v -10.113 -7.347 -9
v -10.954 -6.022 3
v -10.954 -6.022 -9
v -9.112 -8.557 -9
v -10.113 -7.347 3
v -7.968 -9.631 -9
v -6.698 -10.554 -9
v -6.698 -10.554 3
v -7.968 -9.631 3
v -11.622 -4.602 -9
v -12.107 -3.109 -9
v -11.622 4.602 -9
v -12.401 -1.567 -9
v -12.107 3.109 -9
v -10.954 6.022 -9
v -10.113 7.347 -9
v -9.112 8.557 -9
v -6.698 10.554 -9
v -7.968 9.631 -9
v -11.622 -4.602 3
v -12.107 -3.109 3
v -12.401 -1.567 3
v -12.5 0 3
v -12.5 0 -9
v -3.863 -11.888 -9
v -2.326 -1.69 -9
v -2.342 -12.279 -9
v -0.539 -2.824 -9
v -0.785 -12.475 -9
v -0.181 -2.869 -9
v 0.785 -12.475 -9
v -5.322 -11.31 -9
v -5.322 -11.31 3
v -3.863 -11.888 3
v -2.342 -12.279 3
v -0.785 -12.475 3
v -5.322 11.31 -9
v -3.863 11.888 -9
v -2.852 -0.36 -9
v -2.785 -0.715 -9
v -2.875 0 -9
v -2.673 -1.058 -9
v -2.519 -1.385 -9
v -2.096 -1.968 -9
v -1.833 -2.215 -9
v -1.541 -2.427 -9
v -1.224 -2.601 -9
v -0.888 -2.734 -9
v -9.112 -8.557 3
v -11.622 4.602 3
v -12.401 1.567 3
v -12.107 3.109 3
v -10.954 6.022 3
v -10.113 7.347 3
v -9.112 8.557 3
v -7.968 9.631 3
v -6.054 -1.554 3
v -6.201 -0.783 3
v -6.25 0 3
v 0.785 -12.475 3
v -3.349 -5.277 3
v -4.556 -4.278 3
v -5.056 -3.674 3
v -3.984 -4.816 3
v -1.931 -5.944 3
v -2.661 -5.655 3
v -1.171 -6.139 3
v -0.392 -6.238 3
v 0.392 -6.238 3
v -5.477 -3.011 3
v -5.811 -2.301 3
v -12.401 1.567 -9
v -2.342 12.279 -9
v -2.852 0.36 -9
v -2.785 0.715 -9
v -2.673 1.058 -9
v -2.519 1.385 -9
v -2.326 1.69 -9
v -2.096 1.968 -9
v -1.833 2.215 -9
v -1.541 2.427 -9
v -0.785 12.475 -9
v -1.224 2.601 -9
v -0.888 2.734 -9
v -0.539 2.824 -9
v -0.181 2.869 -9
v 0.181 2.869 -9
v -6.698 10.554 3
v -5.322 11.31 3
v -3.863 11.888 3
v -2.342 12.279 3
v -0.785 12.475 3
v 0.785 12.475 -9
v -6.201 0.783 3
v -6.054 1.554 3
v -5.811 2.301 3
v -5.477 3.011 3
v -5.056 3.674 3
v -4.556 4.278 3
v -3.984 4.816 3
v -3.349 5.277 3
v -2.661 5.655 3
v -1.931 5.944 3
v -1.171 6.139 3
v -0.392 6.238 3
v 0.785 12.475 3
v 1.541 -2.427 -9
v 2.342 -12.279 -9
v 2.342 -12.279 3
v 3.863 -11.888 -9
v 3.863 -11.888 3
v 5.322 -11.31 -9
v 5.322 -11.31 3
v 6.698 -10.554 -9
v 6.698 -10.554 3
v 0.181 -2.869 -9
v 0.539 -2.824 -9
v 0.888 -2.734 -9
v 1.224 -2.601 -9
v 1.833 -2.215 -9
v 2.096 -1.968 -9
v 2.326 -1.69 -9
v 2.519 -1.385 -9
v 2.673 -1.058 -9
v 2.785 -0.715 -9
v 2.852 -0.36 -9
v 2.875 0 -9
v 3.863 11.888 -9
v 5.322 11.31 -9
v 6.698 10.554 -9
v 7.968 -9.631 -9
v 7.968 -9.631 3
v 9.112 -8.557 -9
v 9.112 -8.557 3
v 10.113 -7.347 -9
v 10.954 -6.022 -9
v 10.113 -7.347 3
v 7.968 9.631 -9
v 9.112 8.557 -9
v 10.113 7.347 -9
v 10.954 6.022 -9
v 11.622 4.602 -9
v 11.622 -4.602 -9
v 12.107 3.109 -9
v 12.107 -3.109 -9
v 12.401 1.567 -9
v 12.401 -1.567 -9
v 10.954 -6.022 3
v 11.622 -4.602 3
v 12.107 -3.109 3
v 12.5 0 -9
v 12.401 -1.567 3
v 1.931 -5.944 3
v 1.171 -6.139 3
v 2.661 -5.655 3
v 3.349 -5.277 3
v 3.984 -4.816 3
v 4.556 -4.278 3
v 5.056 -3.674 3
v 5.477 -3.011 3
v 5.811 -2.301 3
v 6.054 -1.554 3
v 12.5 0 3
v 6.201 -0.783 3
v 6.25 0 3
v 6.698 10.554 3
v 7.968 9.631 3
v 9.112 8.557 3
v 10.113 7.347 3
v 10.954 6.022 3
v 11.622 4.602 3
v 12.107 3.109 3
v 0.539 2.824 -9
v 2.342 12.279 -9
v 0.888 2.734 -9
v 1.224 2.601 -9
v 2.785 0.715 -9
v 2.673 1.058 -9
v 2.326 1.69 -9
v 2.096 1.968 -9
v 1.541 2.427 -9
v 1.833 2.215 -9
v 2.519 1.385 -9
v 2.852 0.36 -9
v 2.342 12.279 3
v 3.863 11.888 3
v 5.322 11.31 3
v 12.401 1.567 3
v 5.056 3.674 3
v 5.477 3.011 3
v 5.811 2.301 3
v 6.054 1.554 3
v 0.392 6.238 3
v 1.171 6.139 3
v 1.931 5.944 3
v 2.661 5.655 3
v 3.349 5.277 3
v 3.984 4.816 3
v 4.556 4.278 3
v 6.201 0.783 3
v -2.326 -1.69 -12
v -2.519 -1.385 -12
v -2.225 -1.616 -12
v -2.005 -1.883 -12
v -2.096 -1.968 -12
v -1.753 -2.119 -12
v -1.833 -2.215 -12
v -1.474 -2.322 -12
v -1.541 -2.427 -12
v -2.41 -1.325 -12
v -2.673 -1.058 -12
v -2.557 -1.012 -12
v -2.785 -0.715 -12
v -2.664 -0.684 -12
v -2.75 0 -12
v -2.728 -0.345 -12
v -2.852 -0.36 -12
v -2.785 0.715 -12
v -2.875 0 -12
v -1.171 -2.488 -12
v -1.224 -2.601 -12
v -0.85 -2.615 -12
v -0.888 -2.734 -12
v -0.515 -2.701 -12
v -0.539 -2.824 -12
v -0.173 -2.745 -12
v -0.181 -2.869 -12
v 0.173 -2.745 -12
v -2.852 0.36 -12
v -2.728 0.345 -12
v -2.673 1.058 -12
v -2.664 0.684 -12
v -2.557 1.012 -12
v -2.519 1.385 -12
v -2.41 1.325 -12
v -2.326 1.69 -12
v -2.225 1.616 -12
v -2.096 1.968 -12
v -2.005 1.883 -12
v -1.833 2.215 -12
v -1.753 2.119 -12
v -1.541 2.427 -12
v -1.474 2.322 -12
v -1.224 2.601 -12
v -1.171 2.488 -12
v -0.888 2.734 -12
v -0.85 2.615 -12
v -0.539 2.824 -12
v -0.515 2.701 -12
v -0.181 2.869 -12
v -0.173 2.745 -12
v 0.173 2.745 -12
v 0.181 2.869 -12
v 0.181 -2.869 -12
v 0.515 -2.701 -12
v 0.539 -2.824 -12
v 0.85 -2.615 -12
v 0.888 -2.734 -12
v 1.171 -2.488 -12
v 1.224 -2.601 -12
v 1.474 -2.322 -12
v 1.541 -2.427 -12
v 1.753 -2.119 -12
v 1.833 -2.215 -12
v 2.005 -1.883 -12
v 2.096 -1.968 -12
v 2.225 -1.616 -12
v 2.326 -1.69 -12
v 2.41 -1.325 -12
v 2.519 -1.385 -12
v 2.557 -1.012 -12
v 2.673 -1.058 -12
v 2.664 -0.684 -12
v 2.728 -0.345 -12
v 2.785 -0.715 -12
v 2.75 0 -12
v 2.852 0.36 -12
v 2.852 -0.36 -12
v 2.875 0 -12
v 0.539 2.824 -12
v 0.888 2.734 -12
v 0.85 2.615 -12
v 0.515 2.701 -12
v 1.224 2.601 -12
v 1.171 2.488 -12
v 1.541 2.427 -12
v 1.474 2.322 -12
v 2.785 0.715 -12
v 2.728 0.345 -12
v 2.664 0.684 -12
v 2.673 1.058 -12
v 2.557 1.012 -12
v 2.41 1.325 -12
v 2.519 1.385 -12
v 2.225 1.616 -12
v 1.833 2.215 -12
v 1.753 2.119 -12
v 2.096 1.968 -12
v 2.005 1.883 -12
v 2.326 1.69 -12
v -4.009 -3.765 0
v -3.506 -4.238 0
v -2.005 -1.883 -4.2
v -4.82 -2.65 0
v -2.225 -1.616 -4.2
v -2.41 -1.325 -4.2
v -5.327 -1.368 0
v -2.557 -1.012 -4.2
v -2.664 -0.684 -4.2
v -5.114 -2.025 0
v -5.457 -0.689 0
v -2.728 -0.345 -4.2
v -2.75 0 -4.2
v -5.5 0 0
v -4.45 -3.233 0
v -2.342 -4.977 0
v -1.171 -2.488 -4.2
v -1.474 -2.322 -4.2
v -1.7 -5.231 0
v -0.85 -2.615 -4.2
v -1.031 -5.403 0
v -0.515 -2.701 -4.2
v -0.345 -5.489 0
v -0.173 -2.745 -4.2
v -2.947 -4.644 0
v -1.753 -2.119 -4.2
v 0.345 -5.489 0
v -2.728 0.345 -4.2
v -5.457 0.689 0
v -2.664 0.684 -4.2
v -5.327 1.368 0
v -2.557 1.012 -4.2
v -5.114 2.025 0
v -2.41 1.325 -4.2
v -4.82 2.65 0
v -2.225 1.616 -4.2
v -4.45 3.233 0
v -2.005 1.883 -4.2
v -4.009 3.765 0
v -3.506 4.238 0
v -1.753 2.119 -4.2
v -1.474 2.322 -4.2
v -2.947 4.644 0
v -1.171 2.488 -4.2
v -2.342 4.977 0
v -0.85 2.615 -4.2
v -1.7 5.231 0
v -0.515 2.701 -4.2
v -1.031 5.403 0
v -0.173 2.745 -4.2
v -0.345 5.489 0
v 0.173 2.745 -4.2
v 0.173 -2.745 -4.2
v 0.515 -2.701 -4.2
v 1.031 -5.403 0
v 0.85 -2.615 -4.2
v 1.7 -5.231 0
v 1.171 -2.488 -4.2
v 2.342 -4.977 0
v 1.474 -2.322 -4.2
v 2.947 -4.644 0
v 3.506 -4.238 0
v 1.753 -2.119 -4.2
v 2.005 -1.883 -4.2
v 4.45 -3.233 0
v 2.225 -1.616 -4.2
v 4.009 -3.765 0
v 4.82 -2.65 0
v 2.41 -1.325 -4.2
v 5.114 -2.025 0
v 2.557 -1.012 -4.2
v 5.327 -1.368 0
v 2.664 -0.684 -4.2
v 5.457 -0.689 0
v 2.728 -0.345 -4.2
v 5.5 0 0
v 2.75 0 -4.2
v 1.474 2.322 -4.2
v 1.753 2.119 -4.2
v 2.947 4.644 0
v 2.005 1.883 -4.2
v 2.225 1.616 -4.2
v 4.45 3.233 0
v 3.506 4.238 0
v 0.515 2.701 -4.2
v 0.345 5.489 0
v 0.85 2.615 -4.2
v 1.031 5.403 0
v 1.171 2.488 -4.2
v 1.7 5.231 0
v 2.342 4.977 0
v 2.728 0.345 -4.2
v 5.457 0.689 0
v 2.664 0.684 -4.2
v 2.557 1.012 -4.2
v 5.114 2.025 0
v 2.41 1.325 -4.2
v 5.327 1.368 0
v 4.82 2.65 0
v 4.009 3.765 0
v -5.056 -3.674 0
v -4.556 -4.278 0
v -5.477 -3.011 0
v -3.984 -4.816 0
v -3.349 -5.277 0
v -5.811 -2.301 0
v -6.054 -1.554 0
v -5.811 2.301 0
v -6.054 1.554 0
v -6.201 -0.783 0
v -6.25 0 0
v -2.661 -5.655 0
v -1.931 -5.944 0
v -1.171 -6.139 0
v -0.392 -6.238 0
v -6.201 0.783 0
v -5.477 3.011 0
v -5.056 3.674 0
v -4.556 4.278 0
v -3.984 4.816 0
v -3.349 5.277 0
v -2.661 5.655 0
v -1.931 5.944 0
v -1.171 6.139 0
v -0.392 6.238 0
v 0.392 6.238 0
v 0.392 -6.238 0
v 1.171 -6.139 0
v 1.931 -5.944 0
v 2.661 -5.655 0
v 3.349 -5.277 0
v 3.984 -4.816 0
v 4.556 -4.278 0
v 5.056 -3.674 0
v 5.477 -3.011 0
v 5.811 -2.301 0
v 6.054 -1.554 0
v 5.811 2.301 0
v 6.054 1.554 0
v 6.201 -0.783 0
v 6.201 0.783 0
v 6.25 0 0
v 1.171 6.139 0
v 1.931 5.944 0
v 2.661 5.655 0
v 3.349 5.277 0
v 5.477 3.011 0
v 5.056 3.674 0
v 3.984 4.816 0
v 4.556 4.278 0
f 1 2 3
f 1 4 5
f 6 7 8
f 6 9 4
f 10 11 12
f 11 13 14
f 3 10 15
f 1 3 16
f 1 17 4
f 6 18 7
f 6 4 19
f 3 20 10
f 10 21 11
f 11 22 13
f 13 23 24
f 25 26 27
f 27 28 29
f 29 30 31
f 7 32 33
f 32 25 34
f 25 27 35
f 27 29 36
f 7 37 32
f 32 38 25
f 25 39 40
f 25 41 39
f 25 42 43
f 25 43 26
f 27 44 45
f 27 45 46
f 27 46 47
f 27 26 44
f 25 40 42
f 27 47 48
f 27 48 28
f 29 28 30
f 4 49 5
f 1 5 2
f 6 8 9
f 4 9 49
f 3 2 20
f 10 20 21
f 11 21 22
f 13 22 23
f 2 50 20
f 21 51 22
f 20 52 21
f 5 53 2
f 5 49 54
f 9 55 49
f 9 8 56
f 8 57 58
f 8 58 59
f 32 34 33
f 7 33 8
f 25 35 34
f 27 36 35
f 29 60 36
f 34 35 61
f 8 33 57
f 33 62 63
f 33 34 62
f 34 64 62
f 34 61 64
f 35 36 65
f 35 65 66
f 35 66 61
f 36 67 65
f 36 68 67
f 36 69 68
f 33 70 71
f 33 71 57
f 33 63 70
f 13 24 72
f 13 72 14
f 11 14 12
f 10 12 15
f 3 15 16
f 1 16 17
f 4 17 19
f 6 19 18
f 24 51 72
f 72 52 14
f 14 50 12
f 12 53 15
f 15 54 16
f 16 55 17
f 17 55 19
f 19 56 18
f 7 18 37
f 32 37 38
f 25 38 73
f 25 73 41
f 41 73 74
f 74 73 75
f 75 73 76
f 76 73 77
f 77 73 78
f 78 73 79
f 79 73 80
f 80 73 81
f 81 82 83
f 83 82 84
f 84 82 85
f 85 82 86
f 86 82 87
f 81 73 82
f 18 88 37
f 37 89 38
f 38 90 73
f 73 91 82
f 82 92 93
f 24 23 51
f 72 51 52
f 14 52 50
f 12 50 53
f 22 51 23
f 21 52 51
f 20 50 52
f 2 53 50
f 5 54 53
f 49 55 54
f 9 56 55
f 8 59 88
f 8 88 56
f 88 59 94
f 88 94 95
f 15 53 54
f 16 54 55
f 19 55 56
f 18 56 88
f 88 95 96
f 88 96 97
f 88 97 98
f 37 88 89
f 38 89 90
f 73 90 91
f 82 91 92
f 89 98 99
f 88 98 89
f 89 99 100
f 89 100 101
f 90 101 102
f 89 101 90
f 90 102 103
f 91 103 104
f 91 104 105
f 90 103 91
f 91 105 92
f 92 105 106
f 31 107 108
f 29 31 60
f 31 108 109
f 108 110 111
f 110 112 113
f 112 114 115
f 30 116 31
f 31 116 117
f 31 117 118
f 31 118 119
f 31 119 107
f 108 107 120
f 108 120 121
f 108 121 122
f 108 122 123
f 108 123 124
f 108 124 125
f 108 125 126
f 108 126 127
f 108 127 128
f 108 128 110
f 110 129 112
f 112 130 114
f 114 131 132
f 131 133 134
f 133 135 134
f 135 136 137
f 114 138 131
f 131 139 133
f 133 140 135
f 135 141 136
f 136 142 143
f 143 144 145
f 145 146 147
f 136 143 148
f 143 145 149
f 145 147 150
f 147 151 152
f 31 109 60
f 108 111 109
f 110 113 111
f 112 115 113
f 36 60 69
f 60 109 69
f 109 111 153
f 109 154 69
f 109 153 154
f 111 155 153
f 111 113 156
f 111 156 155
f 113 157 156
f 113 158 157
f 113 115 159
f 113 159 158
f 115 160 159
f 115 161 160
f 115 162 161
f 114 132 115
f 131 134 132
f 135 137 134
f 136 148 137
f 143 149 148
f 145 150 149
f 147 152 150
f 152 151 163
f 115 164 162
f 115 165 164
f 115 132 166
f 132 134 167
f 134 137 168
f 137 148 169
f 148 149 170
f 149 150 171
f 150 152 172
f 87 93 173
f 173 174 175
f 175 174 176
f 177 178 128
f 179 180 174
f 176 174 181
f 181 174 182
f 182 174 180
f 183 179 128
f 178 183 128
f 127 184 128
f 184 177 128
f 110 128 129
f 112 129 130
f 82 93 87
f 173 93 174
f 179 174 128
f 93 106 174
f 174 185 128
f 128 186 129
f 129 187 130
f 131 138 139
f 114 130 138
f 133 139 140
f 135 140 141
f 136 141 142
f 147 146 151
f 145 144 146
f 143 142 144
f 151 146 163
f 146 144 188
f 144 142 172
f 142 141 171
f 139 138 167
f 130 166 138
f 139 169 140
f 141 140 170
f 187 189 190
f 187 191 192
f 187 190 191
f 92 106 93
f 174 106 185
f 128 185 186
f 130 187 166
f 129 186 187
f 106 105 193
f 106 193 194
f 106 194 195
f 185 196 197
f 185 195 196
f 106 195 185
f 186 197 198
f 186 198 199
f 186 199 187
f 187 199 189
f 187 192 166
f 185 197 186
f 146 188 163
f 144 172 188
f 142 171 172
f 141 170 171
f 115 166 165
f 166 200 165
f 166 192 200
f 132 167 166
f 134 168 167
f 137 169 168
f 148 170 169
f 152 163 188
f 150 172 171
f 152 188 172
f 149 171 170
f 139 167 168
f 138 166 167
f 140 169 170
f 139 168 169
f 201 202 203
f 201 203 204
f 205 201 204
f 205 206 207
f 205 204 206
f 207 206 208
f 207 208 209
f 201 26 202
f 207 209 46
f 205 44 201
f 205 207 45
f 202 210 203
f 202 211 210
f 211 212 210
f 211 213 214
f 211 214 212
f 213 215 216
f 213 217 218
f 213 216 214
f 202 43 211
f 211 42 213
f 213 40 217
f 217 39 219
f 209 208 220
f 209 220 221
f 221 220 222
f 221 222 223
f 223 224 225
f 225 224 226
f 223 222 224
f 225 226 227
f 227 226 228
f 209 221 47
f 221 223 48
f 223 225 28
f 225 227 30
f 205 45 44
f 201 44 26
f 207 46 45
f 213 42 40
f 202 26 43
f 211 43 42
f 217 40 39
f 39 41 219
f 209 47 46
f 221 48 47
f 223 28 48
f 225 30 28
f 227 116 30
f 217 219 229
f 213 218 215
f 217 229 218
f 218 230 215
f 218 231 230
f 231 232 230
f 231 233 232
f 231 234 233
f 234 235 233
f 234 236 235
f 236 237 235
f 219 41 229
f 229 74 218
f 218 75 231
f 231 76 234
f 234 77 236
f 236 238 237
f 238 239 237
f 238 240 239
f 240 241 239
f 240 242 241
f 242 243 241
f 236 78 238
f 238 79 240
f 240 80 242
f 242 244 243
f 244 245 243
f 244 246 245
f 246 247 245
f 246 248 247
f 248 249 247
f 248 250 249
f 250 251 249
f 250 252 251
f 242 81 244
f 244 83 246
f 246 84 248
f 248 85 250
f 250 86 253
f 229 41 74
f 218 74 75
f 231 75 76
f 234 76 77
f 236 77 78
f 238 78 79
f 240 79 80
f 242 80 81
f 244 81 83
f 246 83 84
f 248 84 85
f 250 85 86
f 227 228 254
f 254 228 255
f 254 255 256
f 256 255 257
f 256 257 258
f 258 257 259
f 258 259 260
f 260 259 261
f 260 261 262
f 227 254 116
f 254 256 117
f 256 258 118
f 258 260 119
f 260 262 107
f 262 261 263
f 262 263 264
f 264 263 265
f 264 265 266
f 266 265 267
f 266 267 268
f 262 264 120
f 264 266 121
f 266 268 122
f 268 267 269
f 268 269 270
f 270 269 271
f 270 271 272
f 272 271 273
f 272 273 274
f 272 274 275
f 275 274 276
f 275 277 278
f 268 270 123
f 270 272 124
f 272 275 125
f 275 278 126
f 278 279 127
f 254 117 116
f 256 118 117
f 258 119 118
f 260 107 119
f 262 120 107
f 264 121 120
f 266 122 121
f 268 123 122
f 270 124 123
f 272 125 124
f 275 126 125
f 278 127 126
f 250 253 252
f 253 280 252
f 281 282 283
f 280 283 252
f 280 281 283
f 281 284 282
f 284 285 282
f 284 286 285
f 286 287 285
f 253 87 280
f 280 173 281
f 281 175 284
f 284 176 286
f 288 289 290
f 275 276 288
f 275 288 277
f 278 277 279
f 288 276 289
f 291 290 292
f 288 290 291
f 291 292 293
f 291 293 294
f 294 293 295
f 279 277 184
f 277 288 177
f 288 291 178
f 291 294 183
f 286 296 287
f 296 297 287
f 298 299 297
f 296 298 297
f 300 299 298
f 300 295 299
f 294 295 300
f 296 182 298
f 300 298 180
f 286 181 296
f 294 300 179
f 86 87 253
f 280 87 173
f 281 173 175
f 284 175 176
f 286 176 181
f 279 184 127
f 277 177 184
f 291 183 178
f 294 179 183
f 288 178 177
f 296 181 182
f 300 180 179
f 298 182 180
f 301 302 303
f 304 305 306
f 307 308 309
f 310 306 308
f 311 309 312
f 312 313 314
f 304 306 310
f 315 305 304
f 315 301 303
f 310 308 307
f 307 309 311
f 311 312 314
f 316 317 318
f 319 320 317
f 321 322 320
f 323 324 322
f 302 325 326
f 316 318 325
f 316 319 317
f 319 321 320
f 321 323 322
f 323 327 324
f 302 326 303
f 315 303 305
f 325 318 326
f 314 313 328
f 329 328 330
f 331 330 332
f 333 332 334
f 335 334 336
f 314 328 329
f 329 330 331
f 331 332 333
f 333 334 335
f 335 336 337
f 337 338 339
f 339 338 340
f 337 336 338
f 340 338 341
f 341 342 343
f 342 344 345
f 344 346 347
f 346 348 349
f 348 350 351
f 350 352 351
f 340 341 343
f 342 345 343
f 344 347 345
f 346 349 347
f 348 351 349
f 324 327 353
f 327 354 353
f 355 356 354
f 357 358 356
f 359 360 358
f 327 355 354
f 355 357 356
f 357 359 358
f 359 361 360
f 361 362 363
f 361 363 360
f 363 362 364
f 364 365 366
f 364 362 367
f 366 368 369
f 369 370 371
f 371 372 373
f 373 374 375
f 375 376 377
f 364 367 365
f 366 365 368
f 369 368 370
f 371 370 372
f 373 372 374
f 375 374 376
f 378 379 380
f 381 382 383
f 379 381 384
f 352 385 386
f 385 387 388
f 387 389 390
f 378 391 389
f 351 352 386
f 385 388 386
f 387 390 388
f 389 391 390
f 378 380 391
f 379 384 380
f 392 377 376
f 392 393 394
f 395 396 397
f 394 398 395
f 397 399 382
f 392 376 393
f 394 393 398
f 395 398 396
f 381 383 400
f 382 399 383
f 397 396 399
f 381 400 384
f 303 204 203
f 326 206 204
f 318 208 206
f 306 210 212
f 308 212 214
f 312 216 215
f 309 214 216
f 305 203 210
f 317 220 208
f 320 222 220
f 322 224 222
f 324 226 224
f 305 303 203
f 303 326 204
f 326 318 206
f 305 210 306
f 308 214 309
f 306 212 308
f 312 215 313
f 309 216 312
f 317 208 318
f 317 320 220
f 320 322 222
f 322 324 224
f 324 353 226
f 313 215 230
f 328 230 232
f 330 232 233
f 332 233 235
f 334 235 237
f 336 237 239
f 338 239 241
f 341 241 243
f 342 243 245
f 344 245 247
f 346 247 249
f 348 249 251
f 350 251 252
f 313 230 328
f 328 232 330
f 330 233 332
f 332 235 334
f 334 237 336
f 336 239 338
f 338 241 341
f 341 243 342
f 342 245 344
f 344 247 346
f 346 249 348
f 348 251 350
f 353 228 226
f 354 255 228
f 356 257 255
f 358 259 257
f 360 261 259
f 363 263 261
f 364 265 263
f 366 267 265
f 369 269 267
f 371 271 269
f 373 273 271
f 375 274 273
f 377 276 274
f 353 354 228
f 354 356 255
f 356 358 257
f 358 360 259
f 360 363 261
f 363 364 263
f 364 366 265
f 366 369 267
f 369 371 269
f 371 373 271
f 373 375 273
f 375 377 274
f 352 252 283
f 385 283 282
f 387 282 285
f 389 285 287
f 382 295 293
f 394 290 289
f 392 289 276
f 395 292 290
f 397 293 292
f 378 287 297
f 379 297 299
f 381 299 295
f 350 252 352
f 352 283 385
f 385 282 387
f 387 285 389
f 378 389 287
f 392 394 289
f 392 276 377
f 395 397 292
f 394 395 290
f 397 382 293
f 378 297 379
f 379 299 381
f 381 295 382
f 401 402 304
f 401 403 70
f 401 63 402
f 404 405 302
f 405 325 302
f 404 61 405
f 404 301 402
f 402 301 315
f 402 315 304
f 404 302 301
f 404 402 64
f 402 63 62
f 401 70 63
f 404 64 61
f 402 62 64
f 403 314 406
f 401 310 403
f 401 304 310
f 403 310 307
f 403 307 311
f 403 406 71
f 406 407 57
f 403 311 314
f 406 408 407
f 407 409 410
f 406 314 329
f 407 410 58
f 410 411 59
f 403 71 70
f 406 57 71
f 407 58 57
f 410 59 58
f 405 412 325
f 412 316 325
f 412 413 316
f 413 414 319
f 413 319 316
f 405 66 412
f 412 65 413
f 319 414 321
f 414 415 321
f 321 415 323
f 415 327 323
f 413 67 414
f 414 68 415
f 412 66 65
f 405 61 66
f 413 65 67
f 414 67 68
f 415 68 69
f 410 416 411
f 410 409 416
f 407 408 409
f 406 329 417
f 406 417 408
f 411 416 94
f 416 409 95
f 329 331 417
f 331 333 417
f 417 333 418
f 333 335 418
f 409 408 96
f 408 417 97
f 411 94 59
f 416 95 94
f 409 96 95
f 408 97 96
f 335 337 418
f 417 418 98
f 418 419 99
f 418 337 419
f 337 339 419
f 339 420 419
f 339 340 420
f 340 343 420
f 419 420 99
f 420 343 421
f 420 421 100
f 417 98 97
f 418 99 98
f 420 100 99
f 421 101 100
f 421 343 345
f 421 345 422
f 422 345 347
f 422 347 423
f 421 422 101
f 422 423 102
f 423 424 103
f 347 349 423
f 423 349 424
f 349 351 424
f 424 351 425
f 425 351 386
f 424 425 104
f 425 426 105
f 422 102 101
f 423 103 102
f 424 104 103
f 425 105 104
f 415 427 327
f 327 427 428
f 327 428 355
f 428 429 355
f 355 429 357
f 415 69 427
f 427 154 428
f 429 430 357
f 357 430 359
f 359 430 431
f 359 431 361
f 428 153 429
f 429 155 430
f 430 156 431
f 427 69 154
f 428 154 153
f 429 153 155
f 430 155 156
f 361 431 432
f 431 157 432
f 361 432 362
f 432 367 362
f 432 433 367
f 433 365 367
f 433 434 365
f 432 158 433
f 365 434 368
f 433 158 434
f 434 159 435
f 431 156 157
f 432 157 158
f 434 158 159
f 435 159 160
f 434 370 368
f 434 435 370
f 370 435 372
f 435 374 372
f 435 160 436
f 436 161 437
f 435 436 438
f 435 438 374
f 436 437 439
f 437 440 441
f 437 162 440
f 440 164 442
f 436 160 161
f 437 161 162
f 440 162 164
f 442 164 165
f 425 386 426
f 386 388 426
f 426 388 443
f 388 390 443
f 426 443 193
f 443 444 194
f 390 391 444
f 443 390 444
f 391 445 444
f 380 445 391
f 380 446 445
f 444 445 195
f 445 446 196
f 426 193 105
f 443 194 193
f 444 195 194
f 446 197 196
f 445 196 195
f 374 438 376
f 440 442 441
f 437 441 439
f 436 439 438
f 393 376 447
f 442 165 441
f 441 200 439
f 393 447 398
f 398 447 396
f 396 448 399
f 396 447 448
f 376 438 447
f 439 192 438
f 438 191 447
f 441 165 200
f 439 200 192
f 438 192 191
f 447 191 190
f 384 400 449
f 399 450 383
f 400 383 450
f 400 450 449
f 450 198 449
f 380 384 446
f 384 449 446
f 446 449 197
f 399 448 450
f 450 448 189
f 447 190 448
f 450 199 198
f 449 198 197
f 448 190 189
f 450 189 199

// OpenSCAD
$fn = 50;

difference() {
	union() {
		translate(v = [0, 0, -9.0]) {
			cylinder(h = 12, r = 12.5);
		}
		#translate(v = [0, 0, -12.0]) {
			cylinder(h = 12, r = 2.875);
		}
	}
	union() {
		translate(v = [0, 0, 0]) {
			rotate(a = [0, 0, 0]) {
				difference() {
					union() {
						translate(v = [0, 0, -12.0]) {
							cylinder(h = 12, r = 2.25);
						}
						translate(v = [0, 0, -4.2]) {
							cylinder(h = 4.2, r1 = 2.75, r2 = 5.5);
						}
						translate(v = [0, 0, -12.0]) {
							cylinder(h = 12, r = 2.75);
						}
						translate(v = [0, 0, -12.0]) {
							cylinder(h = 12, r = 2.25);
						}
					}
					union();
				}
			}
		}
		#cylinder(h = 3, r = 6.25);
	}
}
